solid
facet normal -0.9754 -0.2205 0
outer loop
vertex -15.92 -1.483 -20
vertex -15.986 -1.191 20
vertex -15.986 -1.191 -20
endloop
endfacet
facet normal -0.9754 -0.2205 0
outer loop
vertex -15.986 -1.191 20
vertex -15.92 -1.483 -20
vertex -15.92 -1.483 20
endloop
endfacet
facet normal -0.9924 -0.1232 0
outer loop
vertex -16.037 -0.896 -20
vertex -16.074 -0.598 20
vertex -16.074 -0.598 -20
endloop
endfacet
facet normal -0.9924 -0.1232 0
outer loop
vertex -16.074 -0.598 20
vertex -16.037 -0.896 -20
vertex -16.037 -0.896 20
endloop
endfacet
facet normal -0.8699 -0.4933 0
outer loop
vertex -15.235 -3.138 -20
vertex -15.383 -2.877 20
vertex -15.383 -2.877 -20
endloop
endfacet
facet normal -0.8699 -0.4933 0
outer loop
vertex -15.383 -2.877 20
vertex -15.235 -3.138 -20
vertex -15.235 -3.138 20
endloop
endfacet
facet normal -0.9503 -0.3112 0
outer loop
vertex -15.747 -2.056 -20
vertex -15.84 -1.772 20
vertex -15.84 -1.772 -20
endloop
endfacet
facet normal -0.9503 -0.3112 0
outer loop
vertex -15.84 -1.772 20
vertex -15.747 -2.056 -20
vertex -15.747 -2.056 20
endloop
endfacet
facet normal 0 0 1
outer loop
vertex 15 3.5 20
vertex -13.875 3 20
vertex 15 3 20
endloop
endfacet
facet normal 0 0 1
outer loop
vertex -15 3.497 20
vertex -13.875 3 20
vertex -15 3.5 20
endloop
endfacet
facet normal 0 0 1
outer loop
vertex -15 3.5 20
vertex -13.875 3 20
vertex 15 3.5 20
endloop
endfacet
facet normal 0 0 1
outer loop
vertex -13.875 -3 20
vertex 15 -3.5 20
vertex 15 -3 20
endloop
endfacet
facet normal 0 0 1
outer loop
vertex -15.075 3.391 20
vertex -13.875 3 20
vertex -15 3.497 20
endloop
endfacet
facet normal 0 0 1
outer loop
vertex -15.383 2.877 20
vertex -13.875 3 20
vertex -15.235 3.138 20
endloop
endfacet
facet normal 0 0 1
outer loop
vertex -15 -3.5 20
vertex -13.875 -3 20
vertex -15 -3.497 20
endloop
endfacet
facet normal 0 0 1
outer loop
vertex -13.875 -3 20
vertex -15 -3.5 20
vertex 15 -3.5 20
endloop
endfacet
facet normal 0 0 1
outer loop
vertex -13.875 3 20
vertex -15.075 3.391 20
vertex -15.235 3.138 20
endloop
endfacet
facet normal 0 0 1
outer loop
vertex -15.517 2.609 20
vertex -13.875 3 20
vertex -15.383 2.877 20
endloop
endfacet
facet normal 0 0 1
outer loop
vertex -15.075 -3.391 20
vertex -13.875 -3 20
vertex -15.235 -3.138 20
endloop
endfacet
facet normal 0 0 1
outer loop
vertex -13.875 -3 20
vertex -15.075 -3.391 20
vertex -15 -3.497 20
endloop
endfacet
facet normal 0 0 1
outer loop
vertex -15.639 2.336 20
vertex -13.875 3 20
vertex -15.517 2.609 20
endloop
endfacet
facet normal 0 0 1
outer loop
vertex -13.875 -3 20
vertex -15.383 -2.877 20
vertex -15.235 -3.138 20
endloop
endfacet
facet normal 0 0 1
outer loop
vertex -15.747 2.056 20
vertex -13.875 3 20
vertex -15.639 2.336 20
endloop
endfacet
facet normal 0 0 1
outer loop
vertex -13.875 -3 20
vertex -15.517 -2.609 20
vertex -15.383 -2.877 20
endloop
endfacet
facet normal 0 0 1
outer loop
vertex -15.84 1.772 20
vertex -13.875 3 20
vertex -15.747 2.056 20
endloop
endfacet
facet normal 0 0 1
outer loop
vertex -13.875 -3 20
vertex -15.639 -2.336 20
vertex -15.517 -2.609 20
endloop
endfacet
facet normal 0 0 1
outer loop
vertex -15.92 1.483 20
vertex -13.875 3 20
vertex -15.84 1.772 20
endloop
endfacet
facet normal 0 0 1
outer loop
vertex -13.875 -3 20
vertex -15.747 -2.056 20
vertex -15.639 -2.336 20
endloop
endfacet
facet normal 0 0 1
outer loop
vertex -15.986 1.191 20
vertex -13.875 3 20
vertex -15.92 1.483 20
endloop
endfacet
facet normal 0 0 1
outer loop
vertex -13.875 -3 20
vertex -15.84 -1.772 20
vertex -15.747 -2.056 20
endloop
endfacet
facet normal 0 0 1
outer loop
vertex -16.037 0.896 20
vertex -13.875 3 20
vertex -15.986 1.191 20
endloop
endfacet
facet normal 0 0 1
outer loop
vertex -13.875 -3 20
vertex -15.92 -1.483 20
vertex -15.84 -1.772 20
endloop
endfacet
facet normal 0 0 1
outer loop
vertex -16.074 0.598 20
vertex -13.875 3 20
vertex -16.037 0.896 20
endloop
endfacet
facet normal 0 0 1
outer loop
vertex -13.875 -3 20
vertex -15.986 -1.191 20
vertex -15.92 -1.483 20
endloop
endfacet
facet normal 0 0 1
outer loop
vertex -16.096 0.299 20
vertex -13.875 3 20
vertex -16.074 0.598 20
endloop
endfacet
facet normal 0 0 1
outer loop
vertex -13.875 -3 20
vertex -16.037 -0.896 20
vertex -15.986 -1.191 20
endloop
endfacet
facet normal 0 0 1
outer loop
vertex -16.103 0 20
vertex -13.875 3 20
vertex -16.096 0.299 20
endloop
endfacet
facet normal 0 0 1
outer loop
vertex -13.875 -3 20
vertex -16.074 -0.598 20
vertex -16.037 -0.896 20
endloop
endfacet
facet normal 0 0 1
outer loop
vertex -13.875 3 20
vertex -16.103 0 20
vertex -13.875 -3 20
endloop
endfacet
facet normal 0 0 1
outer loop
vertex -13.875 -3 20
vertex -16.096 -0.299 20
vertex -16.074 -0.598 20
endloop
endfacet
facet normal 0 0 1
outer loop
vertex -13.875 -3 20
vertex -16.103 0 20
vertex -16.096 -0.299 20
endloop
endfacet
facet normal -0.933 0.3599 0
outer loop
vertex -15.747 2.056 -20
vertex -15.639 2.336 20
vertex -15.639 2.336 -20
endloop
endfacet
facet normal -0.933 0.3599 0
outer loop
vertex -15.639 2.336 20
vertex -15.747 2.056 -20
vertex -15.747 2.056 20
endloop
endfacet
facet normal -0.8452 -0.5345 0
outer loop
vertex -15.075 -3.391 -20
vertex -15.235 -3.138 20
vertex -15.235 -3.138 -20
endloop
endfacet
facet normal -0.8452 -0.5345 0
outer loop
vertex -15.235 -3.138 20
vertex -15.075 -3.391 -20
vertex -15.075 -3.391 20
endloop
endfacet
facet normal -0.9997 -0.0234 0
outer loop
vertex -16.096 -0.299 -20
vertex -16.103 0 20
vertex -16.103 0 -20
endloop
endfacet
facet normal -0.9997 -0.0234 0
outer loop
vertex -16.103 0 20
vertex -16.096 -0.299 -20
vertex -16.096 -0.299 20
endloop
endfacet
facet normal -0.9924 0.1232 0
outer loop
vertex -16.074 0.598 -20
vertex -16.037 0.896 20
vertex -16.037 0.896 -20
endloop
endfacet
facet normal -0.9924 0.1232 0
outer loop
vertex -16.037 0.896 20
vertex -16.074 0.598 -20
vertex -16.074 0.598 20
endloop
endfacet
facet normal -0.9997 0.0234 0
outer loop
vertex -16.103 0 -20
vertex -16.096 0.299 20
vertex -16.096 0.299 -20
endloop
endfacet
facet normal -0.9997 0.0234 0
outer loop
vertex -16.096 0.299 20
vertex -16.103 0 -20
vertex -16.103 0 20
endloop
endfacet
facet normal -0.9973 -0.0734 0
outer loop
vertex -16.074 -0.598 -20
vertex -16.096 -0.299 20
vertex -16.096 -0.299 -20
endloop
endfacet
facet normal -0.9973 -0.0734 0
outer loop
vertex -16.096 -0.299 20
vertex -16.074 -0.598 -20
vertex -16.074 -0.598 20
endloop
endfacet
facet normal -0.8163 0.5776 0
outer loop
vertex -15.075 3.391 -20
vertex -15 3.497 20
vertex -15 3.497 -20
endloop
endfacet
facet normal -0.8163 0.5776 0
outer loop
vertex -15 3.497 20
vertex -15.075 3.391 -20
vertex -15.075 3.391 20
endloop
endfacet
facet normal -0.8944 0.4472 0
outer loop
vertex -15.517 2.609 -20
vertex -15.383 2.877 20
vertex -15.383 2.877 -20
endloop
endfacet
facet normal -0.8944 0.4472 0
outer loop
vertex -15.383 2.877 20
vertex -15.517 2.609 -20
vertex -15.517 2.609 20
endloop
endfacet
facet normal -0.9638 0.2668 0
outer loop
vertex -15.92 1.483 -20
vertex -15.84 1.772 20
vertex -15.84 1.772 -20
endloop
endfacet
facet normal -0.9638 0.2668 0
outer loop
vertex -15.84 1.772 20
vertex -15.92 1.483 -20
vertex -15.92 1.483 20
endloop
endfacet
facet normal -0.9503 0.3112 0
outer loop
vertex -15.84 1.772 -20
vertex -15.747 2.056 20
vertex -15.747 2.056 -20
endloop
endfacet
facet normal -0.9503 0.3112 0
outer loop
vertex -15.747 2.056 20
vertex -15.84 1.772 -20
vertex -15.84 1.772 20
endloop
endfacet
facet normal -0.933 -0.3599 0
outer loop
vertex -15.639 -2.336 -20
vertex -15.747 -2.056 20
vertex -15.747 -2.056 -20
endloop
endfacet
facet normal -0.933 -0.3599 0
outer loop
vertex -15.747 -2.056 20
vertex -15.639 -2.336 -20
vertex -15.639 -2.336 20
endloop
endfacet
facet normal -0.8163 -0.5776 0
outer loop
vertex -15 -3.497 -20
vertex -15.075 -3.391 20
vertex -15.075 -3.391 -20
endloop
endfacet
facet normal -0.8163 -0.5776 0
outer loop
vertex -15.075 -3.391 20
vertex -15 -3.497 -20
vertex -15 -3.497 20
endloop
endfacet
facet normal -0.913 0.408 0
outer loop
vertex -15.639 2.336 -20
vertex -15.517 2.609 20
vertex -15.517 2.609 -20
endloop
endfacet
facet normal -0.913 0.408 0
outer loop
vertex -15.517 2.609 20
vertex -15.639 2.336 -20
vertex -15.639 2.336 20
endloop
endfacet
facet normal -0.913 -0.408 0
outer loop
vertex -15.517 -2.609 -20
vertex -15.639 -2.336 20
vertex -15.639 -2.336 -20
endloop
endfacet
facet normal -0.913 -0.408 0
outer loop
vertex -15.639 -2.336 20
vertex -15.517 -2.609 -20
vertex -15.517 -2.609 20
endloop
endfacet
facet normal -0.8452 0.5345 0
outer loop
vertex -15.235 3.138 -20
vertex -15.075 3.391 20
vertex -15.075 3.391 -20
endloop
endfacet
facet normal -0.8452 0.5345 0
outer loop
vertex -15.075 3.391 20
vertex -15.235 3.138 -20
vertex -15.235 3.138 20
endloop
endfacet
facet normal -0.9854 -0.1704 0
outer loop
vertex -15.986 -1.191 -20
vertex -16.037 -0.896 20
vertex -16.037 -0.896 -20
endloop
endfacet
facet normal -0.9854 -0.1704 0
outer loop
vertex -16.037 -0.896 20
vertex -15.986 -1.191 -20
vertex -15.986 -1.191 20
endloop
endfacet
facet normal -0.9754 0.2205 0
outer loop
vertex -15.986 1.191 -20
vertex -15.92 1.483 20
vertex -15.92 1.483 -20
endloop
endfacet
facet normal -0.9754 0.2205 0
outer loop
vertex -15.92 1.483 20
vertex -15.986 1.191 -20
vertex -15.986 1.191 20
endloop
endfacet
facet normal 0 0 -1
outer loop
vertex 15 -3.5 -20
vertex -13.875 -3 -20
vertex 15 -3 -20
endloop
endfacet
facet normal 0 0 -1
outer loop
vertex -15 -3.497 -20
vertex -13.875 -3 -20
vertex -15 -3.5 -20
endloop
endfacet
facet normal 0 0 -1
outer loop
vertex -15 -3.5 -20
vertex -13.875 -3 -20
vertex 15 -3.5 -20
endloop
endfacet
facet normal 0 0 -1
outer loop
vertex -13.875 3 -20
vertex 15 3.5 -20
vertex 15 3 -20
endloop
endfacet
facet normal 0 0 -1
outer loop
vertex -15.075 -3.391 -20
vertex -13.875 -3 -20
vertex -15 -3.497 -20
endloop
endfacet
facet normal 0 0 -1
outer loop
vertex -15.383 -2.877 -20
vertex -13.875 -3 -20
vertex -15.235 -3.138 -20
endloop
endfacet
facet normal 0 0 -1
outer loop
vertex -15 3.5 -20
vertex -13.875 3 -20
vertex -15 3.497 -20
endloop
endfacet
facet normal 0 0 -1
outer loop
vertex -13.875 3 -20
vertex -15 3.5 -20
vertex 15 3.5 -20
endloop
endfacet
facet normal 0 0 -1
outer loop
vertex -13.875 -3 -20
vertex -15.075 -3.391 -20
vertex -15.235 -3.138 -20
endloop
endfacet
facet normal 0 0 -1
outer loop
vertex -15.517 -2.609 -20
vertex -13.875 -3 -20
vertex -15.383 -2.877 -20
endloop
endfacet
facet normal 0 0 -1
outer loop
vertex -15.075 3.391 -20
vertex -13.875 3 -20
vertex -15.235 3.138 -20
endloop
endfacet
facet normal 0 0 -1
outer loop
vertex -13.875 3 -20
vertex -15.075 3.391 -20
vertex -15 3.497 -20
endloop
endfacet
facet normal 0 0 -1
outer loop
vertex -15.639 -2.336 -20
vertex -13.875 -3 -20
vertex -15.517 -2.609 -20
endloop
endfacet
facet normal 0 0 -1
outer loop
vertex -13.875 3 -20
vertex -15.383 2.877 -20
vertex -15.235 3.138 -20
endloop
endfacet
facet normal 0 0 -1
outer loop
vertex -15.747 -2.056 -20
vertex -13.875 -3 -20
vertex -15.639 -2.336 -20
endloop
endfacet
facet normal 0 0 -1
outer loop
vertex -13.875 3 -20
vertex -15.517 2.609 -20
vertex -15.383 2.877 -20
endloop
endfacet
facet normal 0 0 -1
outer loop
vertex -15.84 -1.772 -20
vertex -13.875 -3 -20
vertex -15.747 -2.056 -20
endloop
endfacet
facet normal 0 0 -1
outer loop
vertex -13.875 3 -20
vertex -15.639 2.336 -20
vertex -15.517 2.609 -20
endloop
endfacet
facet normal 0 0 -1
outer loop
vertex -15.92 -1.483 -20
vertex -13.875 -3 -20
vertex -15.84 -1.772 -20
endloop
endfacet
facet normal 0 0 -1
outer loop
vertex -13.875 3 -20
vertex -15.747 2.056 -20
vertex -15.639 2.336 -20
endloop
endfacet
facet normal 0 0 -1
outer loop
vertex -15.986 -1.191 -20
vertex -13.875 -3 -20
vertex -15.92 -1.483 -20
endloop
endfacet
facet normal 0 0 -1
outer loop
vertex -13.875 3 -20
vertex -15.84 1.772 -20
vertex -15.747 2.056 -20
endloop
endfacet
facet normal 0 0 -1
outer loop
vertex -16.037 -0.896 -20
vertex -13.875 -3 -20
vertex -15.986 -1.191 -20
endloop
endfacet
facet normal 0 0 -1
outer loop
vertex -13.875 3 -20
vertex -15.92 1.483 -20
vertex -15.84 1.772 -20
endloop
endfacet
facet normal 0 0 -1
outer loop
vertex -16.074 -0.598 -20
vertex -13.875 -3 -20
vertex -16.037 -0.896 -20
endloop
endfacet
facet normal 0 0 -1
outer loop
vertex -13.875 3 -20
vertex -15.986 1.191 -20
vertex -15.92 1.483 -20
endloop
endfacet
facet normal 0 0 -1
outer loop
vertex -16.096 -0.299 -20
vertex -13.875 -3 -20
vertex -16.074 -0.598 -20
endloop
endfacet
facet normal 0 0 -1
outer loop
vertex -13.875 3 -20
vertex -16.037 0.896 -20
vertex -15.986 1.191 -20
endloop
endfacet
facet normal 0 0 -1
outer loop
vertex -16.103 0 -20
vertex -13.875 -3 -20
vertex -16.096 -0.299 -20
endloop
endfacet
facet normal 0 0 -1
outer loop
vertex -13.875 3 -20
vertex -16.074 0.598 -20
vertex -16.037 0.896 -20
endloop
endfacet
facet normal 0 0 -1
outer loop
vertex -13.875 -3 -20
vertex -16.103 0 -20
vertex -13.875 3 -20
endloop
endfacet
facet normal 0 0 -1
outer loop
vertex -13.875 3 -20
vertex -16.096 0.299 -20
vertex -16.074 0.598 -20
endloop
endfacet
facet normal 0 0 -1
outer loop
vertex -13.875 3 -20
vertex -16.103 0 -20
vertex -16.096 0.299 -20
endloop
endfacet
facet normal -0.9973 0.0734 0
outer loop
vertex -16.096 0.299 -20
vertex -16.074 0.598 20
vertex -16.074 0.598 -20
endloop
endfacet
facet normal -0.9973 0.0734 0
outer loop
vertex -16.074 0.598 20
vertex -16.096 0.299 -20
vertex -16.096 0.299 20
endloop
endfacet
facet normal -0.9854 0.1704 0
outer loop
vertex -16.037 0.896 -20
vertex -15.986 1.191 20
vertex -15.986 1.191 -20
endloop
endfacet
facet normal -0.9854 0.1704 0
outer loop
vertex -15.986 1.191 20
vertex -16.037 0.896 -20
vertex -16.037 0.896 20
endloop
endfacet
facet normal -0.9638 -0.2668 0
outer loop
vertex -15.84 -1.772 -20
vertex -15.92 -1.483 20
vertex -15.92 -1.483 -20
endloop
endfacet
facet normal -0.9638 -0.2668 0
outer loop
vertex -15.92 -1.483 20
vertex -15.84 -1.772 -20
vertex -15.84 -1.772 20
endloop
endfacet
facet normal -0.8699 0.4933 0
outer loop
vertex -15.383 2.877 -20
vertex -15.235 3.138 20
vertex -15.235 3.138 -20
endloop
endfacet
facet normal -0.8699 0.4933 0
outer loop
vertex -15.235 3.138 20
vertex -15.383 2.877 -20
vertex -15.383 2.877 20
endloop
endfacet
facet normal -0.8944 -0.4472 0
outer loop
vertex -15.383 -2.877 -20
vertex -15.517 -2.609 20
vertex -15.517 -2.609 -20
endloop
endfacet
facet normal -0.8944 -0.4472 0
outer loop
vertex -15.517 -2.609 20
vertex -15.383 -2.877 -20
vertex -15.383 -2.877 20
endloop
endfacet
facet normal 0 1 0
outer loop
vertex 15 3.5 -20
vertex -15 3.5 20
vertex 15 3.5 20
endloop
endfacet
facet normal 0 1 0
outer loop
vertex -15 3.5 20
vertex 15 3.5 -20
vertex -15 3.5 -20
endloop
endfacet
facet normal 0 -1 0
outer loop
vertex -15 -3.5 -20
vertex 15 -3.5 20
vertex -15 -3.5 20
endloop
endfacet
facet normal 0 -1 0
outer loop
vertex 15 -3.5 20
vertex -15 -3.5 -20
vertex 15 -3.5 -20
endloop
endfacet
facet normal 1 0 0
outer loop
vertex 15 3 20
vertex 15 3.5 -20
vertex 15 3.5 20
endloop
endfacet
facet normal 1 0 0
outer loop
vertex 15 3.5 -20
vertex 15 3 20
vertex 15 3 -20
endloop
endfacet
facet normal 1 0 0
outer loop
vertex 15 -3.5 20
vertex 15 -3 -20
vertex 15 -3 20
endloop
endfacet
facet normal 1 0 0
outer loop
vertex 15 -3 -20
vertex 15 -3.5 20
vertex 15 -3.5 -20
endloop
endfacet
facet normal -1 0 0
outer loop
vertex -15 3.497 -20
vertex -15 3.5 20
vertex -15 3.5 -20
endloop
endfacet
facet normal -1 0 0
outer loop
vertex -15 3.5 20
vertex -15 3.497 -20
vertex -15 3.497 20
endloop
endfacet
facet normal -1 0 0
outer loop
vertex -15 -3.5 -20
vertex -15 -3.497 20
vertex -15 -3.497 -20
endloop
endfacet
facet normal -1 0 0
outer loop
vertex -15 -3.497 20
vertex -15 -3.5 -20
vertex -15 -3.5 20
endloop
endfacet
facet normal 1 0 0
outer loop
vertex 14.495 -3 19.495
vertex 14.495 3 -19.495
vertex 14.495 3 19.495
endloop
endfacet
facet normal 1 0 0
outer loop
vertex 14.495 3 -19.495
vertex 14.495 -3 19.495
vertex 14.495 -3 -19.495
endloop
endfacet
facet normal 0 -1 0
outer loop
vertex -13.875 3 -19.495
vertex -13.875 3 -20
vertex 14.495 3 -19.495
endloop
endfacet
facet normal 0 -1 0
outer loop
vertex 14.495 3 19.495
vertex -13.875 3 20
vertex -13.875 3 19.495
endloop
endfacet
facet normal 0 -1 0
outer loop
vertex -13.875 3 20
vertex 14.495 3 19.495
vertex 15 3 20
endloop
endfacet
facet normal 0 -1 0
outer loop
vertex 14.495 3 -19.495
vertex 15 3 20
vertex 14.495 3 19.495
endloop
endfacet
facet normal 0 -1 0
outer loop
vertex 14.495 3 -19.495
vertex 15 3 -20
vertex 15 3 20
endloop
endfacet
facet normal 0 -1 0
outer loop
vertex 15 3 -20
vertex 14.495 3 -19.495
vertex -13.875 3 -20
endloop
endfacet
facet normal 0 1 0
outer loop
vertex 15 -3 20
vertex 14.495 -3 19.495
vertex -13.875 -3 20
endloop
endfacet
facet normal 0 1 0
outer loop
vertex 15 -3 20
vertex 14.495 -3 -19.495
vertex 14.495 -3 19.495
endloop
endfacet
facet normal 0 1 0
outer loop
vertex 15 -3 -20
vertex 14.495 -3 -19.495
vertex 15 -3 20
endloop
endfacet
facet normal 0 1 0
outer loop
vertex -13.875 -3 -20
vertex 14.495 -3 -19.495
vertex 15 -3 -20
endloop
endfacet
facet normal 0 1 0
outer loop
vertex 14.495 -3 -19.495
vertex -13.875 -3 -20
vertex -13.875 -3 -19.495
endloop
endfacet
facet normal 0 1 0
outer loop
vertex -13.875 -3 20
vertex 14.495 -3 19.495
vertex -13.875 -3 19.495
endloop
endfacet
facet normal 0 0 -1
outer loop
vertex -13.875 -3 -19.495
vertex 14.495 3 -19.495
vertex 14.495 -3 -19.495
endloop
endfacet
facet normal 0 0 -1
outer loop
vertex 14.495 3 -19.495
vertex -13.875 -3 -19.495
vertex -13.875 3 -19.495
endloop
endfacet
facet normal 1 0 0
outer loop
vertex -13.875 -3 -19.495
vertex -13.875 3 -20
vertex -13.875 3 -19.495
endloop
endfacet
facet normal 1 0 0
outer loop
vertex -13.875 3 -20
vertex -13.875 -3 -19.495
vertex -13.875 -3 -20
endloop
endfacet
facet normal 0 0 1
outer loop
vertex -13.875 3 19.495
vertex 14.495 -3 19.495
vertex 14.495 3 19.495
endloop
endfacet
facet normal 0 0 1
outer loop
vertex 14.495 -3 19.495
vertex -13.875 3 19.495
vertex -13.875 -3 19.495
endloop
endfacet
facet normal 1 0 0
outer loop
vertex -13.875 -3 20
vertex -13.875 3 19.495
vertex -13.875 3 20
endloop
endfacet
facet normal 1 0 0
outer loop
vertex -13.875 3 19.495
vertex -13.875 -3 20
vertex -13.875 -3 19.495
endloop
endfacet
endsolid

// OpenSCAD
$fn = $preview ? 32: 128;

// book dimentions
book_width = 30;
book_depth = 7;
book_height = 40;

book_cover_thickness = 0.5;
book_binding_width = 1;

// Used to calculate the curvature of the binding
// Note: Only works for smallish values, as large values extend the width of the book shape
binding_curve_distance=5;

// Small overlap to ensure parts do not exactly touch on edges
_overlap = .01;
// Large value that should be >> any other dimension
_max = 1000;


module base_book_shape(width, depth, height) {
    cube([width, depth, height], center= true);
}

// creates half cylinder to interesect with base book shape
// Moves to correct place at end of book
module create_binding_half_cylinder(width, depth, height) {

    // internal values for the binding
    _opposite = depth/2;
    _binding_radius = _opposite / sin(atan(_opposite/binding_curve_distance));
    _binding_thickness = _binding_radius - binding_curve_distance;


    translate([-width/2+_binding_radius-_binding_thickness,0,0])
    intersection(){
        cylinder(h = height, r = _binding_radius, center=true);
        translate([-_binding_radius/2,0,0])
        cube([_binding_radius, _binding_radius*2, height+_overlap], center=true);
    }
    
}

//cut off extra portions of cylinder, or anything outside the plane of the book
module ensure_book_depth_plane(depth) {
    intersection(){
        children();
        cube([_max, depth, _max], center=true);
    }
}


module ensure_binding_overhangs_pages_on_end(width, depth, height,cover_thickness) {
    difference(){
        children();
        translate([width/2-cover_thickness/2,0,0]) {
            cube([cover_thickness+_overlap, depth-2*cover_thickness, height+_overlap], center=true);
        }
    }
}

module ensure_binding_overhangs_pages_on_top_or_bottom(width, depth, height, cover_thickness,binding_width,direction) {
    difference(){
        children();
        translate([binding_width,0,direction*height/2-direction*cover_thickness/2]) {
            cube([width-cover_thickness/2, depth-2*cover_thickness, cover_thickness+_overlap], center=true);
        }
    }
}

module base_book_shape_with_binding(width, depth, height) {
    ensure_book_depth_plane(depth)create_binding_half_cylinder(width, depth, height);
    base_book_shape(width, depth, height);
}

module book(width, depth, height,cover_thickness,binding_width) {
    ensure_binding_overhangs_pages_on_top_or_bottom(width, depth, height,cover_thickness,binding_width,1)
        ensure_binding_overhangs_pages_on_top_or_bottom(width, depth, height,cover_thickness,binding_width,-1)
            ensure_binding_overhangs_pages_on_end(width, depth, height,cover_thickness)
                base_book_shape_with_binding(width, depth, height);
}

book(book_width, book_depth, book_height,book_cover_thickness,book_binding_width);
